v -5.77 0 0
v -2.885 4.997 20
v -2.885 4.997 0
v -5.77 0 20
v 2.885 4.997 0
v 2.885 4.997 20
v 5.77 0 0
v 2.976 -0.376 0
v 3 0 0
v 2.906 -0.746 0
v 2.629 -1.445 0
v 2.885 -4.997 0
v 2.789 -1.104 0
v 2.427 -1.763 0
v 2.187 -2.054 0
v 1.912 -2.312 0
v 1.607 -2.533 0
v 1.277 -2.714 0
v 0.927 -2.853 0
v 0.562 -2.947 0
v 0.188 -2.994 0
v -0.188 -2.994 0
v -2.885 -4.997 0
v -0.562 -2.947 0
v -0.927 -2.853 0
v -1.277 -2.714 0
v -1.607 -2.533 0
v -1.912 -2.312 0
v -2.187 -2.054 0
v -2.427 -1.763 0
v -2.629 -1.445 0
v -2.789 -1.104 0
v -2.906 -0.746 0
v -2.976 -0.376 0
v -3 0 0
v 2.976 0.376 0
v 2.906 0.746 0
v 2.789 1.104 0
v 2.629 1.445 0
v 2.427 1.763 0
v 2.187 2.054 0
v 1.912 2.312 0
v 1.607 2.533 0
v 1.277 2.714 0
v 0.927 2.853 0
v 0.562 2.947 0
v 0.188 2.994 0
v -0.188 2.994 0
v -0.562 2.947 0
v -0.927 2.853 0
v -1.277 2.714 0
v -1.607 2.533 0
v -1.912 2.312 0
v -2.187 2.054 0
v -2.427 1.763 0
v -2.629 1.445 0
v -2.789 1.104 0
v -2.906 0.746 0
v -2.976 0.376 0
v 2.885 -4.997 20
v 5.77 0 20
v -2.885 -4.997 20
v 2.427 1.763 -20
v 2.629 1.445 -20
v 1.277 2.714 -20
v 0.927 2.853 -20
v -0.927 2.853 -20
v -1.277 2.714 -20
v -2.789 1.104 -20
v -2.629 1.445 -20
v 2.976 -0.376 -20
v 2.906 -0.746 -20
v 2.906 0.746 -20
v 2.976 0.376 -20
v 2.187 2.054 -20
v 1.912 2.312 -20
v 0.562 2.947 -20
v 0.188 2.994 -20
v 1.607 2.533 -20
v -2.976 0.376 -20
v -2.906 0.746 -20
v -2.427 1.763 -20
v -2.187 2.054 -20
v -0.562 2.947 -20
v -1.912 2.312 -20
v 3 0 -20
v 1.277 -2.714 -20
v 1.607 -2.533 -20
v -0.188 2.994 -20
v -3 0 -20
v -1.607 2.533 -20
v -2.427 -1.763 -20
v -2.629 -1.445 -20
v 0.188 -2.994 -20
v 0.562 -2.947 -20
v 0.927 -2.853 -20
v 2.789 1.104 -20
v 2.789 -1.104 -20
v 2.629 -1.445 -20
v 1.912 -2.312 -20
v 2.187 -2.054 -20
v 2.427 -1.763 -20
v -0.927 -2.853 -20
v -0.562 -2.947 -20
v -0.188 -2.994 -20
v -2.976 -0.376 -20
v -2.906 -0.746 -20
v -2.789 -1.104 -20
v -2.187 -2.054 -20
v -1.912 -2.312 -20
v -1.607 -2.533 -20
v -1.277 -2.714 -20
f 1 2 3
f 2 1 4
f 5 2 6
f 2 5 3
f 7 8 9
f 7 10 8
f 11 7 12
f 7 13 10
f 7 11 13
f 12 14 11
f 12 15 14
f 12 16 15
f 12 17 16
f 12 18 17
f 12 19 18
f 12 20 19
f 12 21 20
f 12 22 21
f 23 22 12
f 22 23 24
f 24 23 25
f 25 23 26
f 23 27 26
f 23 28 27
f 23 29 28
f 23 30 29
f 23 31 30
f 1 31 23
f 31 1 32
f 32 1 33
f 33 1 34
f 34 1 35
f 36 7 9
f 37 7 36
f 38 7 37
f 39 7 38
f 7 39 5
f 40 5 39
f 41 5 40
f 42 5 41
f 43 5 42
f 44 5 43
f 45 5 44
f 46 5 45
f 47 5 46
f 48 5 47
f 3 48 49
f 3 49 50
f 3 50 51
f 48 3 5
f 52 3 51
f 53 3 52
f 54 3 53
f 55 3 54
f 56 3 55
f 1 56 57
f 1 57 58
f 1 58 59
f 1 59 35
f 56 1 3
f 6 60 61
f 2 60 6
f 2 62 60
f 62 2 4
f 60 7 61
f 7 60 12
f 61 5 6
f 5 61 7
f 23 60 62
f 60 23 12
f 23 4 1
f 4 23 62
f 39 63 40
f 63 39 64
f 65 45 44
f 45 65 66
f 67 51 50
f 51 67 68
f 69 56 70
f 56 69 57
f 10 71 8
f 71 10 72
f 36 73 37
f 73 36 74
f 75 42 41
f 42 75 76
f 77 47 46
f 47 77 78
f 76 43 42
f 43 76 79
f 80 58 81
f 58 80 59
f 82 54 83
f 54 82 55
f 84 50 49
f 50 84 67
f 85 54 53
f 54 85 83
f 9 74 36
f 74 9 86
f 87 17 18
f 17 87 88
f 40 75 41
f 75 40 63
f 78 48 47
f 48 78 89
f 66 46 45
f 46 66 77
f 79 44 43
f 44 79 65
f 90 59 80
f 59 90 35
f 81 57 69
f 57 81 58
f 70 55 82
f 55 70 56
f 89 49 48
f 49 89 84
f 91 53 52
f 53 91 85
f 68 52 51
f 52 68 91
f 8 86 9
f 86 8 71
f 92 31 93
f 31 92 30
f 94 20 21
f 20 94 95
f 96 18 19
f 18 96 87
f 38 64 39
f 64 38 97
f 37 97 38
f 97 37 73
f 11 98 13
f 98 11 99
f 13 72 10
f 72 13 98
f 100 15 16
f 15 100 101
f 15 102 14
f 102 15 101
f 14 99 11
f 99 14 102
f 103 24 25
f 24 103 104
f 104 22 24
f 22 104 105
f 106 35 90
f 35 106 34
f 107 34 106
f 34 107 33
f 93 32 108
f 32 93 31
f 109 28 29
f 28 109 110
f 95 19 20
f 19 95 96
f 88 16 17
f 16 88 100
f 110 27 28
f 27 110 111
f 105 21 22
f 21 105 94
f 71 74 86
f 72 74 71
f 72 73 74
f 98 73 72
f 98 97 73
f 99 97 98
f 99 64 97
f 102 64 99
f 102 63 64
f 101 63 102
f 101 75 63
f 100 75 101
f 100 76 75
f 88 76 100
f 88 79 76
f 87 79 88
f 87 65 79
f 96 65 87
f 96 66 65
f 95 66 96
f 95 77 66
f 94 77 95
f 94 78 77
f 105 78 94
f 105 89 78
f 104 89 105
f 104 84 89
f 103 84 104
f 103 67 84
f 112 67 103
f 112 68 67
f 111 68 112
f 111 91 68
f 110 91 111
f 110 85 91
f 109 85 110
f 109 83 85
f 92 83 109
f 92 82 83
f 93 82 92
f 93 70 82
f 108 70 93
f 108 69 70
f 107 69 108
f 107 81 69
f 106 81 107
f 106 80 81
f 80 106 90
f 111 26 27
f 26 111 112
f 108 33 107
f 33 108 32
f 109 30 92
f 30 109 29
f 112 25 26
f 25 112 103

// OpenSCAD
$fn = 50;


difference() {
	union() {
		linear_extrude(height = 20) {
			polygon(points = [[5.7700000000, 0.0000000000], [2.8850000000, 4.9969665798], [-2.8850000000, 4.9969665798], [-5.7700000000, 0.0000000000], [-2.8850000000, -4.9969665798], [2.8850000000, -4.9969665798]]);
		}
		translate(v = [0, 0, -20]) {
			cylinder(h = 20, r = 3.0000000000);
		}
	}
	union();
}
